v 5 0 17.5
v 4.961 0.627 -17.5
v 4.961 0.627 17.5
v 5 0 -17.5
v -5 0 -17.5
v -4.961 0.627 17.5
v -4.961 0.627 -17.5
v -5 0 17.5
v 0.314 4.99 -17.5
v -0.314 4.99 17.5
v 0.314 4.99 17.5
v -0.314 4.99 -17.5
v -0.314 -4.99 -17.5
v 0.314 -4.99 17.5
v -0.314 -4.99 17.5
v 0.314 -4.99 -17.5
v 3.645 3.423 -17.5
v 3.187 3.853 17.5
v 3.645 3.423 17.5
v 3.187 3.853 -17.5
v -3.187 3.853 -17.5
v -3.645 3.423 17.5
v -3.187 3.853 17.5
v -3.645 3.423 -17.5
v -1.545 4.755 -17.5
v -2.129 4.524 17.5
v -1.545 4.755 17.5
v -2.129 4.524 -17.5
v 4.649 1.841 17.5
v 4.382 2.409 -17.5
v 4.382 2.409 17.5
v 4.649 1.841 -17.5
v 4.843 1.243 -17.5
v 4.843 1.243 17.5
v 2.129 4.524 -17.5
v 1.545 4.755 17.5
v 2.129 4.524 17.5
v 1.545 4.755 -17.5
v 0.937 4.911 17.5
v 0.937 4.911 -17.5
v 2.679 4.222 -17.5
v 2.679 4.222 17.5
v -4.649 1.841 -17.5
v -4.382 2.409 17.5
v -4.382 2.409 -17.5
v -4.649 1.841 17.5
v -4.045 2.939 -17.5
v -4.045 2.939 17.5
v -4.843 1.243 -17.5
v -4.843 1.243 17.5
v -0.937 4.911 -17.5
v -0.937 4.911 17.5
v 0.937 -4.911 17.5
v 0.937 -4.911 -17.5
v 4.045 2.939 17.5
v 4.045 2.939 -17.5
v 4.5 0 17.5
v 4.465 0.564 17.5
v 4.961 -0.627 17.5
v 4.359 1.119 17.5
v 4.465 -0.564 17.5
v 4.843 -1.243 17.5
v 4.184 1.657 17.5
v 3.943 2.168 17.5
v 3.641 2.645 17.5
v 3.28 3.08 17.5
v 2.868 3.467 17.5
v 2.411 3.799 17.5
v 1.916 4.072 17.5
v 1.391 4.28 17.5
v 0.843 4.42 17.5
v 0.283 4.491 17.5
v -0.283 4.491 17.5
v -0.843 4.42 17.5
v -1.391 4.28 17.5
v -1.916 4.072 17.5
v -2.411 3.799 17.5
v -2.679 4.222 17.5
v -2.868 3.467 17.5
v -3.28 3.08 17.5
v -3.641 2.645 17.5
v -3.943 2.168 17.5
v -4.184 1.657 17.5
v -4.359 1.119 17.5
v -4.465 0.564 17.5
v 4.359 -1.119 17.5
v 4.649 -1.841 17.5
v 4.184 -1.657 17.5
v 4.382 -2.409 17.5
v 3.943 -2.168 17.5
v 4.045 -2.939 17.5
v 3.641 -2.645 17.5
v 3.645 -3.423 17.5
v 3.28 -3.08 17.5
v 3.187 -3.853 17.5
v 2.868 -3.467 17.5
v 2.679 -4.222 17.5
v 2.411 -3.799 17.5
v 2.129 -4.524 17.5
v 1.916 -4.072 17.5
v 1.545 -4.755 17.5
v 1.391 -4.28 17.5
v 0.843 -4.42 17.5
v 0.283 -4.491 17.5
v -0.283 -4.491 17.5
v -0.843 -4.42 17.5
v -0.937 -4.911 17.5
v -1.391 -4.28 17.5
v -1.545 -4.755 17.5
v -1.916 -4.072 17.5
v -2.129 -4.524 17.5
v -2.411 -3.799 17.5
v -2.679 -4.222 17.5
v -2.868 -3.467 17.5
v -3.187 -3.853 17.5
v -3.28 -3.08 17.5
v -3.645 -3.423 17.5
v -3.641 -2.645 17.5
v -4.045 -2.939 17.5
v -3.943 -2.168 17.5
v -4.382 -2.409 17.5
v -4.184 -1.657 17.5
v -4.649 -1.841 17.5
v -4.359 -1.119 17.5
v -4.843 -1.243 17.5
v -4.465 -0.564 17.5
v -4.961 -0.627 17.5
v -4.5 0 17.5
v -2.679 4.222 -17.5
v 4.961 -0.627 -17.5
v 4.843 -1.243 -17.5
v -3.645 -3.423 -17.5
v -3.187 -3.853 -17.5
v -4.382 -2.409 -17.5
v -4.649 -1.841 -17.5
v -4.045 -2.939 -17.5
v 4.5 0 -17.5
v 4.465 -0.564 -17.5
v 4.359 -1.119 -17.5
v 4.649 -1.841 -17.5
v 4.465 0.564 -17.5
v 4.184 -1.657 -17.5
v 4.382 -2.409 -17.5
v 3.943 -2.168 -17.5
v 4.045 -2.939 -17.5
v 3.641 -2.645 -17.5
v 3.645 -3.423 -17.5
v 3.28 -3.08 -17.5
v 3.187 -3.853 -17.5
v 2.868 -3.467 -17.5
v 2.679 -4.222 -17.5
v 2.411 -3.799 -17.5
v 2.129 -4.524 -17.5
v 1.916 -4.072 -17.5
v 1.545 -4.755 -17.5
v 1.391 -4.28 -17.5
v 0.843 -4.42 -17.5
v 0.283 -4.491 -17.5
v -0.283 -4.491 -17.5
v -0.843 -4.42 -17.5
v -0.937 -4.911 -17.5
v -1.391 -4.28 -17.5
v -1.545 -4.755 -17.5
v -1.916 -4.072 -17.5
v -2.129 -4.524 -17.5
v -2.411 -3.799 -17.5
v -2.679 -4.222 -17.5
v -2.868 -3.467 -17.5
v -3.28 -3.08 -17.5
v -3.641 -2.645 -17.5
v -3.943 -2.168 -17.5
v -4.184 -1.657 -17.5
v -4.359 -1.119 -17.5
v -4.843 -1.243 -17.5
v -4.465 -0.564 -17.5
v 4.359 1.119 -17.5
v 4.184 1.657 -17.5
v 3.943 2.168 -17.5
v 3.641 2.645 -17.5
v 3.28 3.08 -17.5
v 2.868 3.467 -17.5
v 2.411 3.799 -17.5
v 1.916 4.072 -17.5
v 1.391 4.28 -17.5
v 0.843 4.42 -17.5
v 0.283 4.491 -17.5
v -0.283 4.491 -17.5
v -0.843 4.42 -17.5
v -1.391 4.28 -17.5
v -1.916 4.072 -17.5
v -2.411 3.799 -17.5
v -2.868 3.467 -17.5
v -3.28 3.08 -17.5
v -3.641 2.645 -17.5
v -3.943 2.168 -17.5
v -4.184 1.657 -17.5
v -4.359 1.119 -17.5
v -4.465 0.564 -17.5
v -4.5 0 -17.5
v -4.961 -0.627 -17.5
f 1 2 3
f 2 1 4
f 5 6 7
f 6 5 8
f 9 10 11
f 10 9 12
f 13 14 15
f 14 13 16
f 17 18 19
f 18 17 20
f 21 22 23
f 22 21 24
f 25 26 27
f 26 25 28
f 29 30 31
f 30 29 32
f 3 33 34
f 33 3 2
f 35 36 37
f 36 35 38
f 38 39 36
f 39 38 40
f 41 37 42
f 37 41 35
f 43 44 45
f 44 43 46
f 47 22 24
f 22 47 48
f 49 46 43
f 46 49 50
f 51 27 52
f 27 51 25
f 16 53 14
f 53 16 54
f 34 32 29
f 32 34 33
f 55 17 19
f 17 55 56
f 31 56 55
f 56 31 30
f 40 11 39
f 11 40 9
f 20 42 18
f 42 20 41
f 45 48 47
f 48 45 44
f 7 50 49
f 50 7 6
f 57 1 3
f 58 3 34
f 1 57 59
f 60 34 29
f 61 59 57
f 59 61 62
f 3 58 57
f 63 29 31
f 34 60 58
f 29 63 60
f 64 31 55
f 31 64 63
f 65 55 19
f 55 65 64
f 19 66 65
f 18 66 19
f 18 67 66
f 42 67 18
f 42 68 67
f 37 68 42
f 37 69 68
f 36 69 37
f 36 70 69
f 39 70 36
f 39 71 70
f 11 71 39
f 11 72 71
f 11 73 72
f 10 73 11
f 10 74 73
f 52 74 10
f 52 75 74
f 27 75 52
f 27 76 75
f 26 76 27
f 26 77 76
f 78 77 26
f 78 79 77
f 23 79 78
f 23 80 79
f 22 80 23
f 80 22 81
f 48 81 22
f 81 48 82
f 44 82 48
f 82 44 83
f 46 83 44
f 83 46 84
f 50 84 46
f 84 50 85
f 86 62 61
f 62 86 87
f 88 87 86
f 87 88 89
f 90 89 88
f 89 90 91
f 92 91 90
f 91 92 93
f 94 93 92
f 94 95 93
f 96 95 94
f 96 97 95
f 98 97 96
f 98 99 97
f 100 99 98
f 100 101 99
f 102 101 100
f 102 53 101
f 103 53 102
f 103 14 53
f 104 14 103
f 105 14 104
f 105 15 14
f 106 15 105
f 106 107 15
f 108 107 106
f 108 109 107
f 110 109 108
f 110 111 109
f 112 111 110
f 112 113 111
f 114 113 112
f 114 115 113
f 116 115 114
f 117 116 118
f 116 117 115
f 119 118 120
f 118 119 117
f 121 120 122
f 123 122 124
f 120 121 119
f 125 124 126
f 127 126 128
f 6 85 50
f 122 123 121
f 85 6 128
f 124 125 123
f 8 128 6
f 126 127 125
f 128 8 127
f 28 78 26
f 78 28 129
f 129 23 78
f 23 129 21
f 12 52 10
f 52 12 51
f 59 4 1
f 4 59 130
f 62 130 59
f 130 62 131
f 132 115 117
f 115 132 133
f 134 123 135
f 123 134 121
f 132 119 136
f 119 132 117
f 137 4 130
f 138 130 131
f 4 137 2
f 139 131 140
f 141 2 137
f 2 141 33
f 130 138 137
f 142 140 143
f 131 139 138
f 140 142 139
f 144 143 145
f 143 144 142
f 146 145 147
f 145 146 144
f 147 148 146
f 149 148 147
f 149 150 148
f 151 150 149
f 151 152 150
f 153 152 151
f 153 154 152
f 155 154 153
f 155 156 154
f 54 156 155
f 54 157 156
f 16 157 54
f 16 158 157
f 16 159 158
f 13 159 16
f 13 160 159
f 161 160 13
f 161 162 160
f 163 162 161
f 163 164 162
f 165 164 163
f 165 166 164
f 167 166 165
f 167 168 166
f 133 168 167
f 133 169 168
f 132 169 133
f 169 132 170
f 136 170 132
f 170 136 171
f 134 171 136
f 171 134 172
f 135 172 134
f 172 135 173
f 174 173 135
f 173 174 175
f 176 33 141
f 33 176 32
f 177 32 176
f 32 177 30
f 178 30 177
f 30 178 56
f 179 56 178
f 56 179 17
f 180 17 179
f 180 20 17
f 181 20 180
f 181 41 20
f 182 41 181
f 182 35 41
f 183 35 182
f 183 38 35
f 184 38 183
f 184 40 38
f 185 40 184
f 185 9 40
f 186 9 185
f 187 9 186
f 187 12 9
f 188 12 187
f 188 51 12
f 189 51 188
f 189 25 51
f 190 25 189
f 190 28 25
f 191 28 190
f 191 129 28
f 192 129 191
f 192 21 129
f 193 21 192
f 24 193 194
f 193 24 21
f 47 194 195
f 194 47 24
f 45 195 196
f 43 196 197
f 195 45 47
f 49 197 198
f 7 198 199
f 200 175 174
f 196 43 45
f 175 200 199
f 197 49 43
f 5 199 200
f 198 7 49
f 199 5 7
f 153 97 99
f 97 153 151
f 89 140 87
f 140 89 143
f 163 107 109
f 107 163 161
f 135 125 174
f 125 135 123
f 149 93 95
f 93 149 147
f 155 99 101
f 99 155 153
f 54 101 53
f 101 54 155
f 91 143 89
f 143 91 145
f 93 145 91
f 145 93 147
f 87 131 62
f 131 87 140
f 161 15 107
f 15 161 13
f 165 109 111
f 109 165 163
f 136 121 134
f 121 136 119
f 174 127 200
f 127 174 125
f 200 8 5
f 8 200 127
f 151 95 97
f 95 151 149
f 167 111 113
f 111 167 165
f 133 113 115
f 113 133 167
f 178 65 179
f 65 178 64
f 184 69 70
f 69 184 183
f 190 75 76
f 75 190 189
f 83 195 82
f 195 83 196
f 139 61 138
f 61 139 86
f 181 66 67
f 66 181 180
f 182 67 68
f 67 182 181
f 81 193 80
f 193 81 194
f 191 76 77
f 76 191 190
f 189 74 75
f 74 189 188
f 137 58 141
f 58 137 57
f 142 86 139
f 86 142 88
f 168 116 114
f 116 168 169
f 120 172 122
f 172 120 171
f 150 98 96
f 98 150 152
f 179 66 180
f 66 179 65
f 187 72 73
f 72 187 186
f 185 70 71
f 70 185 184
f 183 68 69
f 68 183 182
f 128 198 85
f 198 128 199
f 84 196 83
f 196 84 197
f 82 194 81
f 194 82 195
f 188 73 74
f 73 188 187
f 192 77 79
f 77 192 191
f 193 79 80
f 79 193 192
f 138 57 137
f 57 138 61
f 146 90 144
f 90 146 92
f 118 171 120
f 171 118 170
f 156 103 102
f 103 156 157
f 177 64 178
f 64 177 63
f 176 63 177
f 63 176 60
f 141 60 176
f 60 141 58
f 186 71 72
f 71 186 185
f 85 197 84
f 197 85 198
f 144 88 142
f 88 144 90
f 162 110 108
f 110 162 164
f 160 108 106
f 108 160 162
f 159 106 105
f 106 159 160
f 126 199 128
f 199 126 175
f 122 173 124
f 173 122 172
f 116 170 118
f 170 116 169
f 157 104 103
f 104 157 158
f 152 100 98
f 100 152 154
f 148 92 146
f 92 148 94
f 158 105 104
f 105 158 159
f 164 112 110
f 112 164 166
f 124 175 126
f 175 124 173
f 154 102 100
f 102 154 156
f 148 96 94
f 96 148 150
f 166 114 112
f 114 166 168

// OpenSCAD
$fn = 50;


difference() {
	union() {
		translate(v = [0, 0, -17.5000000000]) {
			cylinder(h = 35, r = 5.0000000000);
		}
	}
	union() {
		translate(v = [0, 0, -100.0000000000]) {
			cylinder(h = 200, r = 4.5000000000);
		}
	}
}
